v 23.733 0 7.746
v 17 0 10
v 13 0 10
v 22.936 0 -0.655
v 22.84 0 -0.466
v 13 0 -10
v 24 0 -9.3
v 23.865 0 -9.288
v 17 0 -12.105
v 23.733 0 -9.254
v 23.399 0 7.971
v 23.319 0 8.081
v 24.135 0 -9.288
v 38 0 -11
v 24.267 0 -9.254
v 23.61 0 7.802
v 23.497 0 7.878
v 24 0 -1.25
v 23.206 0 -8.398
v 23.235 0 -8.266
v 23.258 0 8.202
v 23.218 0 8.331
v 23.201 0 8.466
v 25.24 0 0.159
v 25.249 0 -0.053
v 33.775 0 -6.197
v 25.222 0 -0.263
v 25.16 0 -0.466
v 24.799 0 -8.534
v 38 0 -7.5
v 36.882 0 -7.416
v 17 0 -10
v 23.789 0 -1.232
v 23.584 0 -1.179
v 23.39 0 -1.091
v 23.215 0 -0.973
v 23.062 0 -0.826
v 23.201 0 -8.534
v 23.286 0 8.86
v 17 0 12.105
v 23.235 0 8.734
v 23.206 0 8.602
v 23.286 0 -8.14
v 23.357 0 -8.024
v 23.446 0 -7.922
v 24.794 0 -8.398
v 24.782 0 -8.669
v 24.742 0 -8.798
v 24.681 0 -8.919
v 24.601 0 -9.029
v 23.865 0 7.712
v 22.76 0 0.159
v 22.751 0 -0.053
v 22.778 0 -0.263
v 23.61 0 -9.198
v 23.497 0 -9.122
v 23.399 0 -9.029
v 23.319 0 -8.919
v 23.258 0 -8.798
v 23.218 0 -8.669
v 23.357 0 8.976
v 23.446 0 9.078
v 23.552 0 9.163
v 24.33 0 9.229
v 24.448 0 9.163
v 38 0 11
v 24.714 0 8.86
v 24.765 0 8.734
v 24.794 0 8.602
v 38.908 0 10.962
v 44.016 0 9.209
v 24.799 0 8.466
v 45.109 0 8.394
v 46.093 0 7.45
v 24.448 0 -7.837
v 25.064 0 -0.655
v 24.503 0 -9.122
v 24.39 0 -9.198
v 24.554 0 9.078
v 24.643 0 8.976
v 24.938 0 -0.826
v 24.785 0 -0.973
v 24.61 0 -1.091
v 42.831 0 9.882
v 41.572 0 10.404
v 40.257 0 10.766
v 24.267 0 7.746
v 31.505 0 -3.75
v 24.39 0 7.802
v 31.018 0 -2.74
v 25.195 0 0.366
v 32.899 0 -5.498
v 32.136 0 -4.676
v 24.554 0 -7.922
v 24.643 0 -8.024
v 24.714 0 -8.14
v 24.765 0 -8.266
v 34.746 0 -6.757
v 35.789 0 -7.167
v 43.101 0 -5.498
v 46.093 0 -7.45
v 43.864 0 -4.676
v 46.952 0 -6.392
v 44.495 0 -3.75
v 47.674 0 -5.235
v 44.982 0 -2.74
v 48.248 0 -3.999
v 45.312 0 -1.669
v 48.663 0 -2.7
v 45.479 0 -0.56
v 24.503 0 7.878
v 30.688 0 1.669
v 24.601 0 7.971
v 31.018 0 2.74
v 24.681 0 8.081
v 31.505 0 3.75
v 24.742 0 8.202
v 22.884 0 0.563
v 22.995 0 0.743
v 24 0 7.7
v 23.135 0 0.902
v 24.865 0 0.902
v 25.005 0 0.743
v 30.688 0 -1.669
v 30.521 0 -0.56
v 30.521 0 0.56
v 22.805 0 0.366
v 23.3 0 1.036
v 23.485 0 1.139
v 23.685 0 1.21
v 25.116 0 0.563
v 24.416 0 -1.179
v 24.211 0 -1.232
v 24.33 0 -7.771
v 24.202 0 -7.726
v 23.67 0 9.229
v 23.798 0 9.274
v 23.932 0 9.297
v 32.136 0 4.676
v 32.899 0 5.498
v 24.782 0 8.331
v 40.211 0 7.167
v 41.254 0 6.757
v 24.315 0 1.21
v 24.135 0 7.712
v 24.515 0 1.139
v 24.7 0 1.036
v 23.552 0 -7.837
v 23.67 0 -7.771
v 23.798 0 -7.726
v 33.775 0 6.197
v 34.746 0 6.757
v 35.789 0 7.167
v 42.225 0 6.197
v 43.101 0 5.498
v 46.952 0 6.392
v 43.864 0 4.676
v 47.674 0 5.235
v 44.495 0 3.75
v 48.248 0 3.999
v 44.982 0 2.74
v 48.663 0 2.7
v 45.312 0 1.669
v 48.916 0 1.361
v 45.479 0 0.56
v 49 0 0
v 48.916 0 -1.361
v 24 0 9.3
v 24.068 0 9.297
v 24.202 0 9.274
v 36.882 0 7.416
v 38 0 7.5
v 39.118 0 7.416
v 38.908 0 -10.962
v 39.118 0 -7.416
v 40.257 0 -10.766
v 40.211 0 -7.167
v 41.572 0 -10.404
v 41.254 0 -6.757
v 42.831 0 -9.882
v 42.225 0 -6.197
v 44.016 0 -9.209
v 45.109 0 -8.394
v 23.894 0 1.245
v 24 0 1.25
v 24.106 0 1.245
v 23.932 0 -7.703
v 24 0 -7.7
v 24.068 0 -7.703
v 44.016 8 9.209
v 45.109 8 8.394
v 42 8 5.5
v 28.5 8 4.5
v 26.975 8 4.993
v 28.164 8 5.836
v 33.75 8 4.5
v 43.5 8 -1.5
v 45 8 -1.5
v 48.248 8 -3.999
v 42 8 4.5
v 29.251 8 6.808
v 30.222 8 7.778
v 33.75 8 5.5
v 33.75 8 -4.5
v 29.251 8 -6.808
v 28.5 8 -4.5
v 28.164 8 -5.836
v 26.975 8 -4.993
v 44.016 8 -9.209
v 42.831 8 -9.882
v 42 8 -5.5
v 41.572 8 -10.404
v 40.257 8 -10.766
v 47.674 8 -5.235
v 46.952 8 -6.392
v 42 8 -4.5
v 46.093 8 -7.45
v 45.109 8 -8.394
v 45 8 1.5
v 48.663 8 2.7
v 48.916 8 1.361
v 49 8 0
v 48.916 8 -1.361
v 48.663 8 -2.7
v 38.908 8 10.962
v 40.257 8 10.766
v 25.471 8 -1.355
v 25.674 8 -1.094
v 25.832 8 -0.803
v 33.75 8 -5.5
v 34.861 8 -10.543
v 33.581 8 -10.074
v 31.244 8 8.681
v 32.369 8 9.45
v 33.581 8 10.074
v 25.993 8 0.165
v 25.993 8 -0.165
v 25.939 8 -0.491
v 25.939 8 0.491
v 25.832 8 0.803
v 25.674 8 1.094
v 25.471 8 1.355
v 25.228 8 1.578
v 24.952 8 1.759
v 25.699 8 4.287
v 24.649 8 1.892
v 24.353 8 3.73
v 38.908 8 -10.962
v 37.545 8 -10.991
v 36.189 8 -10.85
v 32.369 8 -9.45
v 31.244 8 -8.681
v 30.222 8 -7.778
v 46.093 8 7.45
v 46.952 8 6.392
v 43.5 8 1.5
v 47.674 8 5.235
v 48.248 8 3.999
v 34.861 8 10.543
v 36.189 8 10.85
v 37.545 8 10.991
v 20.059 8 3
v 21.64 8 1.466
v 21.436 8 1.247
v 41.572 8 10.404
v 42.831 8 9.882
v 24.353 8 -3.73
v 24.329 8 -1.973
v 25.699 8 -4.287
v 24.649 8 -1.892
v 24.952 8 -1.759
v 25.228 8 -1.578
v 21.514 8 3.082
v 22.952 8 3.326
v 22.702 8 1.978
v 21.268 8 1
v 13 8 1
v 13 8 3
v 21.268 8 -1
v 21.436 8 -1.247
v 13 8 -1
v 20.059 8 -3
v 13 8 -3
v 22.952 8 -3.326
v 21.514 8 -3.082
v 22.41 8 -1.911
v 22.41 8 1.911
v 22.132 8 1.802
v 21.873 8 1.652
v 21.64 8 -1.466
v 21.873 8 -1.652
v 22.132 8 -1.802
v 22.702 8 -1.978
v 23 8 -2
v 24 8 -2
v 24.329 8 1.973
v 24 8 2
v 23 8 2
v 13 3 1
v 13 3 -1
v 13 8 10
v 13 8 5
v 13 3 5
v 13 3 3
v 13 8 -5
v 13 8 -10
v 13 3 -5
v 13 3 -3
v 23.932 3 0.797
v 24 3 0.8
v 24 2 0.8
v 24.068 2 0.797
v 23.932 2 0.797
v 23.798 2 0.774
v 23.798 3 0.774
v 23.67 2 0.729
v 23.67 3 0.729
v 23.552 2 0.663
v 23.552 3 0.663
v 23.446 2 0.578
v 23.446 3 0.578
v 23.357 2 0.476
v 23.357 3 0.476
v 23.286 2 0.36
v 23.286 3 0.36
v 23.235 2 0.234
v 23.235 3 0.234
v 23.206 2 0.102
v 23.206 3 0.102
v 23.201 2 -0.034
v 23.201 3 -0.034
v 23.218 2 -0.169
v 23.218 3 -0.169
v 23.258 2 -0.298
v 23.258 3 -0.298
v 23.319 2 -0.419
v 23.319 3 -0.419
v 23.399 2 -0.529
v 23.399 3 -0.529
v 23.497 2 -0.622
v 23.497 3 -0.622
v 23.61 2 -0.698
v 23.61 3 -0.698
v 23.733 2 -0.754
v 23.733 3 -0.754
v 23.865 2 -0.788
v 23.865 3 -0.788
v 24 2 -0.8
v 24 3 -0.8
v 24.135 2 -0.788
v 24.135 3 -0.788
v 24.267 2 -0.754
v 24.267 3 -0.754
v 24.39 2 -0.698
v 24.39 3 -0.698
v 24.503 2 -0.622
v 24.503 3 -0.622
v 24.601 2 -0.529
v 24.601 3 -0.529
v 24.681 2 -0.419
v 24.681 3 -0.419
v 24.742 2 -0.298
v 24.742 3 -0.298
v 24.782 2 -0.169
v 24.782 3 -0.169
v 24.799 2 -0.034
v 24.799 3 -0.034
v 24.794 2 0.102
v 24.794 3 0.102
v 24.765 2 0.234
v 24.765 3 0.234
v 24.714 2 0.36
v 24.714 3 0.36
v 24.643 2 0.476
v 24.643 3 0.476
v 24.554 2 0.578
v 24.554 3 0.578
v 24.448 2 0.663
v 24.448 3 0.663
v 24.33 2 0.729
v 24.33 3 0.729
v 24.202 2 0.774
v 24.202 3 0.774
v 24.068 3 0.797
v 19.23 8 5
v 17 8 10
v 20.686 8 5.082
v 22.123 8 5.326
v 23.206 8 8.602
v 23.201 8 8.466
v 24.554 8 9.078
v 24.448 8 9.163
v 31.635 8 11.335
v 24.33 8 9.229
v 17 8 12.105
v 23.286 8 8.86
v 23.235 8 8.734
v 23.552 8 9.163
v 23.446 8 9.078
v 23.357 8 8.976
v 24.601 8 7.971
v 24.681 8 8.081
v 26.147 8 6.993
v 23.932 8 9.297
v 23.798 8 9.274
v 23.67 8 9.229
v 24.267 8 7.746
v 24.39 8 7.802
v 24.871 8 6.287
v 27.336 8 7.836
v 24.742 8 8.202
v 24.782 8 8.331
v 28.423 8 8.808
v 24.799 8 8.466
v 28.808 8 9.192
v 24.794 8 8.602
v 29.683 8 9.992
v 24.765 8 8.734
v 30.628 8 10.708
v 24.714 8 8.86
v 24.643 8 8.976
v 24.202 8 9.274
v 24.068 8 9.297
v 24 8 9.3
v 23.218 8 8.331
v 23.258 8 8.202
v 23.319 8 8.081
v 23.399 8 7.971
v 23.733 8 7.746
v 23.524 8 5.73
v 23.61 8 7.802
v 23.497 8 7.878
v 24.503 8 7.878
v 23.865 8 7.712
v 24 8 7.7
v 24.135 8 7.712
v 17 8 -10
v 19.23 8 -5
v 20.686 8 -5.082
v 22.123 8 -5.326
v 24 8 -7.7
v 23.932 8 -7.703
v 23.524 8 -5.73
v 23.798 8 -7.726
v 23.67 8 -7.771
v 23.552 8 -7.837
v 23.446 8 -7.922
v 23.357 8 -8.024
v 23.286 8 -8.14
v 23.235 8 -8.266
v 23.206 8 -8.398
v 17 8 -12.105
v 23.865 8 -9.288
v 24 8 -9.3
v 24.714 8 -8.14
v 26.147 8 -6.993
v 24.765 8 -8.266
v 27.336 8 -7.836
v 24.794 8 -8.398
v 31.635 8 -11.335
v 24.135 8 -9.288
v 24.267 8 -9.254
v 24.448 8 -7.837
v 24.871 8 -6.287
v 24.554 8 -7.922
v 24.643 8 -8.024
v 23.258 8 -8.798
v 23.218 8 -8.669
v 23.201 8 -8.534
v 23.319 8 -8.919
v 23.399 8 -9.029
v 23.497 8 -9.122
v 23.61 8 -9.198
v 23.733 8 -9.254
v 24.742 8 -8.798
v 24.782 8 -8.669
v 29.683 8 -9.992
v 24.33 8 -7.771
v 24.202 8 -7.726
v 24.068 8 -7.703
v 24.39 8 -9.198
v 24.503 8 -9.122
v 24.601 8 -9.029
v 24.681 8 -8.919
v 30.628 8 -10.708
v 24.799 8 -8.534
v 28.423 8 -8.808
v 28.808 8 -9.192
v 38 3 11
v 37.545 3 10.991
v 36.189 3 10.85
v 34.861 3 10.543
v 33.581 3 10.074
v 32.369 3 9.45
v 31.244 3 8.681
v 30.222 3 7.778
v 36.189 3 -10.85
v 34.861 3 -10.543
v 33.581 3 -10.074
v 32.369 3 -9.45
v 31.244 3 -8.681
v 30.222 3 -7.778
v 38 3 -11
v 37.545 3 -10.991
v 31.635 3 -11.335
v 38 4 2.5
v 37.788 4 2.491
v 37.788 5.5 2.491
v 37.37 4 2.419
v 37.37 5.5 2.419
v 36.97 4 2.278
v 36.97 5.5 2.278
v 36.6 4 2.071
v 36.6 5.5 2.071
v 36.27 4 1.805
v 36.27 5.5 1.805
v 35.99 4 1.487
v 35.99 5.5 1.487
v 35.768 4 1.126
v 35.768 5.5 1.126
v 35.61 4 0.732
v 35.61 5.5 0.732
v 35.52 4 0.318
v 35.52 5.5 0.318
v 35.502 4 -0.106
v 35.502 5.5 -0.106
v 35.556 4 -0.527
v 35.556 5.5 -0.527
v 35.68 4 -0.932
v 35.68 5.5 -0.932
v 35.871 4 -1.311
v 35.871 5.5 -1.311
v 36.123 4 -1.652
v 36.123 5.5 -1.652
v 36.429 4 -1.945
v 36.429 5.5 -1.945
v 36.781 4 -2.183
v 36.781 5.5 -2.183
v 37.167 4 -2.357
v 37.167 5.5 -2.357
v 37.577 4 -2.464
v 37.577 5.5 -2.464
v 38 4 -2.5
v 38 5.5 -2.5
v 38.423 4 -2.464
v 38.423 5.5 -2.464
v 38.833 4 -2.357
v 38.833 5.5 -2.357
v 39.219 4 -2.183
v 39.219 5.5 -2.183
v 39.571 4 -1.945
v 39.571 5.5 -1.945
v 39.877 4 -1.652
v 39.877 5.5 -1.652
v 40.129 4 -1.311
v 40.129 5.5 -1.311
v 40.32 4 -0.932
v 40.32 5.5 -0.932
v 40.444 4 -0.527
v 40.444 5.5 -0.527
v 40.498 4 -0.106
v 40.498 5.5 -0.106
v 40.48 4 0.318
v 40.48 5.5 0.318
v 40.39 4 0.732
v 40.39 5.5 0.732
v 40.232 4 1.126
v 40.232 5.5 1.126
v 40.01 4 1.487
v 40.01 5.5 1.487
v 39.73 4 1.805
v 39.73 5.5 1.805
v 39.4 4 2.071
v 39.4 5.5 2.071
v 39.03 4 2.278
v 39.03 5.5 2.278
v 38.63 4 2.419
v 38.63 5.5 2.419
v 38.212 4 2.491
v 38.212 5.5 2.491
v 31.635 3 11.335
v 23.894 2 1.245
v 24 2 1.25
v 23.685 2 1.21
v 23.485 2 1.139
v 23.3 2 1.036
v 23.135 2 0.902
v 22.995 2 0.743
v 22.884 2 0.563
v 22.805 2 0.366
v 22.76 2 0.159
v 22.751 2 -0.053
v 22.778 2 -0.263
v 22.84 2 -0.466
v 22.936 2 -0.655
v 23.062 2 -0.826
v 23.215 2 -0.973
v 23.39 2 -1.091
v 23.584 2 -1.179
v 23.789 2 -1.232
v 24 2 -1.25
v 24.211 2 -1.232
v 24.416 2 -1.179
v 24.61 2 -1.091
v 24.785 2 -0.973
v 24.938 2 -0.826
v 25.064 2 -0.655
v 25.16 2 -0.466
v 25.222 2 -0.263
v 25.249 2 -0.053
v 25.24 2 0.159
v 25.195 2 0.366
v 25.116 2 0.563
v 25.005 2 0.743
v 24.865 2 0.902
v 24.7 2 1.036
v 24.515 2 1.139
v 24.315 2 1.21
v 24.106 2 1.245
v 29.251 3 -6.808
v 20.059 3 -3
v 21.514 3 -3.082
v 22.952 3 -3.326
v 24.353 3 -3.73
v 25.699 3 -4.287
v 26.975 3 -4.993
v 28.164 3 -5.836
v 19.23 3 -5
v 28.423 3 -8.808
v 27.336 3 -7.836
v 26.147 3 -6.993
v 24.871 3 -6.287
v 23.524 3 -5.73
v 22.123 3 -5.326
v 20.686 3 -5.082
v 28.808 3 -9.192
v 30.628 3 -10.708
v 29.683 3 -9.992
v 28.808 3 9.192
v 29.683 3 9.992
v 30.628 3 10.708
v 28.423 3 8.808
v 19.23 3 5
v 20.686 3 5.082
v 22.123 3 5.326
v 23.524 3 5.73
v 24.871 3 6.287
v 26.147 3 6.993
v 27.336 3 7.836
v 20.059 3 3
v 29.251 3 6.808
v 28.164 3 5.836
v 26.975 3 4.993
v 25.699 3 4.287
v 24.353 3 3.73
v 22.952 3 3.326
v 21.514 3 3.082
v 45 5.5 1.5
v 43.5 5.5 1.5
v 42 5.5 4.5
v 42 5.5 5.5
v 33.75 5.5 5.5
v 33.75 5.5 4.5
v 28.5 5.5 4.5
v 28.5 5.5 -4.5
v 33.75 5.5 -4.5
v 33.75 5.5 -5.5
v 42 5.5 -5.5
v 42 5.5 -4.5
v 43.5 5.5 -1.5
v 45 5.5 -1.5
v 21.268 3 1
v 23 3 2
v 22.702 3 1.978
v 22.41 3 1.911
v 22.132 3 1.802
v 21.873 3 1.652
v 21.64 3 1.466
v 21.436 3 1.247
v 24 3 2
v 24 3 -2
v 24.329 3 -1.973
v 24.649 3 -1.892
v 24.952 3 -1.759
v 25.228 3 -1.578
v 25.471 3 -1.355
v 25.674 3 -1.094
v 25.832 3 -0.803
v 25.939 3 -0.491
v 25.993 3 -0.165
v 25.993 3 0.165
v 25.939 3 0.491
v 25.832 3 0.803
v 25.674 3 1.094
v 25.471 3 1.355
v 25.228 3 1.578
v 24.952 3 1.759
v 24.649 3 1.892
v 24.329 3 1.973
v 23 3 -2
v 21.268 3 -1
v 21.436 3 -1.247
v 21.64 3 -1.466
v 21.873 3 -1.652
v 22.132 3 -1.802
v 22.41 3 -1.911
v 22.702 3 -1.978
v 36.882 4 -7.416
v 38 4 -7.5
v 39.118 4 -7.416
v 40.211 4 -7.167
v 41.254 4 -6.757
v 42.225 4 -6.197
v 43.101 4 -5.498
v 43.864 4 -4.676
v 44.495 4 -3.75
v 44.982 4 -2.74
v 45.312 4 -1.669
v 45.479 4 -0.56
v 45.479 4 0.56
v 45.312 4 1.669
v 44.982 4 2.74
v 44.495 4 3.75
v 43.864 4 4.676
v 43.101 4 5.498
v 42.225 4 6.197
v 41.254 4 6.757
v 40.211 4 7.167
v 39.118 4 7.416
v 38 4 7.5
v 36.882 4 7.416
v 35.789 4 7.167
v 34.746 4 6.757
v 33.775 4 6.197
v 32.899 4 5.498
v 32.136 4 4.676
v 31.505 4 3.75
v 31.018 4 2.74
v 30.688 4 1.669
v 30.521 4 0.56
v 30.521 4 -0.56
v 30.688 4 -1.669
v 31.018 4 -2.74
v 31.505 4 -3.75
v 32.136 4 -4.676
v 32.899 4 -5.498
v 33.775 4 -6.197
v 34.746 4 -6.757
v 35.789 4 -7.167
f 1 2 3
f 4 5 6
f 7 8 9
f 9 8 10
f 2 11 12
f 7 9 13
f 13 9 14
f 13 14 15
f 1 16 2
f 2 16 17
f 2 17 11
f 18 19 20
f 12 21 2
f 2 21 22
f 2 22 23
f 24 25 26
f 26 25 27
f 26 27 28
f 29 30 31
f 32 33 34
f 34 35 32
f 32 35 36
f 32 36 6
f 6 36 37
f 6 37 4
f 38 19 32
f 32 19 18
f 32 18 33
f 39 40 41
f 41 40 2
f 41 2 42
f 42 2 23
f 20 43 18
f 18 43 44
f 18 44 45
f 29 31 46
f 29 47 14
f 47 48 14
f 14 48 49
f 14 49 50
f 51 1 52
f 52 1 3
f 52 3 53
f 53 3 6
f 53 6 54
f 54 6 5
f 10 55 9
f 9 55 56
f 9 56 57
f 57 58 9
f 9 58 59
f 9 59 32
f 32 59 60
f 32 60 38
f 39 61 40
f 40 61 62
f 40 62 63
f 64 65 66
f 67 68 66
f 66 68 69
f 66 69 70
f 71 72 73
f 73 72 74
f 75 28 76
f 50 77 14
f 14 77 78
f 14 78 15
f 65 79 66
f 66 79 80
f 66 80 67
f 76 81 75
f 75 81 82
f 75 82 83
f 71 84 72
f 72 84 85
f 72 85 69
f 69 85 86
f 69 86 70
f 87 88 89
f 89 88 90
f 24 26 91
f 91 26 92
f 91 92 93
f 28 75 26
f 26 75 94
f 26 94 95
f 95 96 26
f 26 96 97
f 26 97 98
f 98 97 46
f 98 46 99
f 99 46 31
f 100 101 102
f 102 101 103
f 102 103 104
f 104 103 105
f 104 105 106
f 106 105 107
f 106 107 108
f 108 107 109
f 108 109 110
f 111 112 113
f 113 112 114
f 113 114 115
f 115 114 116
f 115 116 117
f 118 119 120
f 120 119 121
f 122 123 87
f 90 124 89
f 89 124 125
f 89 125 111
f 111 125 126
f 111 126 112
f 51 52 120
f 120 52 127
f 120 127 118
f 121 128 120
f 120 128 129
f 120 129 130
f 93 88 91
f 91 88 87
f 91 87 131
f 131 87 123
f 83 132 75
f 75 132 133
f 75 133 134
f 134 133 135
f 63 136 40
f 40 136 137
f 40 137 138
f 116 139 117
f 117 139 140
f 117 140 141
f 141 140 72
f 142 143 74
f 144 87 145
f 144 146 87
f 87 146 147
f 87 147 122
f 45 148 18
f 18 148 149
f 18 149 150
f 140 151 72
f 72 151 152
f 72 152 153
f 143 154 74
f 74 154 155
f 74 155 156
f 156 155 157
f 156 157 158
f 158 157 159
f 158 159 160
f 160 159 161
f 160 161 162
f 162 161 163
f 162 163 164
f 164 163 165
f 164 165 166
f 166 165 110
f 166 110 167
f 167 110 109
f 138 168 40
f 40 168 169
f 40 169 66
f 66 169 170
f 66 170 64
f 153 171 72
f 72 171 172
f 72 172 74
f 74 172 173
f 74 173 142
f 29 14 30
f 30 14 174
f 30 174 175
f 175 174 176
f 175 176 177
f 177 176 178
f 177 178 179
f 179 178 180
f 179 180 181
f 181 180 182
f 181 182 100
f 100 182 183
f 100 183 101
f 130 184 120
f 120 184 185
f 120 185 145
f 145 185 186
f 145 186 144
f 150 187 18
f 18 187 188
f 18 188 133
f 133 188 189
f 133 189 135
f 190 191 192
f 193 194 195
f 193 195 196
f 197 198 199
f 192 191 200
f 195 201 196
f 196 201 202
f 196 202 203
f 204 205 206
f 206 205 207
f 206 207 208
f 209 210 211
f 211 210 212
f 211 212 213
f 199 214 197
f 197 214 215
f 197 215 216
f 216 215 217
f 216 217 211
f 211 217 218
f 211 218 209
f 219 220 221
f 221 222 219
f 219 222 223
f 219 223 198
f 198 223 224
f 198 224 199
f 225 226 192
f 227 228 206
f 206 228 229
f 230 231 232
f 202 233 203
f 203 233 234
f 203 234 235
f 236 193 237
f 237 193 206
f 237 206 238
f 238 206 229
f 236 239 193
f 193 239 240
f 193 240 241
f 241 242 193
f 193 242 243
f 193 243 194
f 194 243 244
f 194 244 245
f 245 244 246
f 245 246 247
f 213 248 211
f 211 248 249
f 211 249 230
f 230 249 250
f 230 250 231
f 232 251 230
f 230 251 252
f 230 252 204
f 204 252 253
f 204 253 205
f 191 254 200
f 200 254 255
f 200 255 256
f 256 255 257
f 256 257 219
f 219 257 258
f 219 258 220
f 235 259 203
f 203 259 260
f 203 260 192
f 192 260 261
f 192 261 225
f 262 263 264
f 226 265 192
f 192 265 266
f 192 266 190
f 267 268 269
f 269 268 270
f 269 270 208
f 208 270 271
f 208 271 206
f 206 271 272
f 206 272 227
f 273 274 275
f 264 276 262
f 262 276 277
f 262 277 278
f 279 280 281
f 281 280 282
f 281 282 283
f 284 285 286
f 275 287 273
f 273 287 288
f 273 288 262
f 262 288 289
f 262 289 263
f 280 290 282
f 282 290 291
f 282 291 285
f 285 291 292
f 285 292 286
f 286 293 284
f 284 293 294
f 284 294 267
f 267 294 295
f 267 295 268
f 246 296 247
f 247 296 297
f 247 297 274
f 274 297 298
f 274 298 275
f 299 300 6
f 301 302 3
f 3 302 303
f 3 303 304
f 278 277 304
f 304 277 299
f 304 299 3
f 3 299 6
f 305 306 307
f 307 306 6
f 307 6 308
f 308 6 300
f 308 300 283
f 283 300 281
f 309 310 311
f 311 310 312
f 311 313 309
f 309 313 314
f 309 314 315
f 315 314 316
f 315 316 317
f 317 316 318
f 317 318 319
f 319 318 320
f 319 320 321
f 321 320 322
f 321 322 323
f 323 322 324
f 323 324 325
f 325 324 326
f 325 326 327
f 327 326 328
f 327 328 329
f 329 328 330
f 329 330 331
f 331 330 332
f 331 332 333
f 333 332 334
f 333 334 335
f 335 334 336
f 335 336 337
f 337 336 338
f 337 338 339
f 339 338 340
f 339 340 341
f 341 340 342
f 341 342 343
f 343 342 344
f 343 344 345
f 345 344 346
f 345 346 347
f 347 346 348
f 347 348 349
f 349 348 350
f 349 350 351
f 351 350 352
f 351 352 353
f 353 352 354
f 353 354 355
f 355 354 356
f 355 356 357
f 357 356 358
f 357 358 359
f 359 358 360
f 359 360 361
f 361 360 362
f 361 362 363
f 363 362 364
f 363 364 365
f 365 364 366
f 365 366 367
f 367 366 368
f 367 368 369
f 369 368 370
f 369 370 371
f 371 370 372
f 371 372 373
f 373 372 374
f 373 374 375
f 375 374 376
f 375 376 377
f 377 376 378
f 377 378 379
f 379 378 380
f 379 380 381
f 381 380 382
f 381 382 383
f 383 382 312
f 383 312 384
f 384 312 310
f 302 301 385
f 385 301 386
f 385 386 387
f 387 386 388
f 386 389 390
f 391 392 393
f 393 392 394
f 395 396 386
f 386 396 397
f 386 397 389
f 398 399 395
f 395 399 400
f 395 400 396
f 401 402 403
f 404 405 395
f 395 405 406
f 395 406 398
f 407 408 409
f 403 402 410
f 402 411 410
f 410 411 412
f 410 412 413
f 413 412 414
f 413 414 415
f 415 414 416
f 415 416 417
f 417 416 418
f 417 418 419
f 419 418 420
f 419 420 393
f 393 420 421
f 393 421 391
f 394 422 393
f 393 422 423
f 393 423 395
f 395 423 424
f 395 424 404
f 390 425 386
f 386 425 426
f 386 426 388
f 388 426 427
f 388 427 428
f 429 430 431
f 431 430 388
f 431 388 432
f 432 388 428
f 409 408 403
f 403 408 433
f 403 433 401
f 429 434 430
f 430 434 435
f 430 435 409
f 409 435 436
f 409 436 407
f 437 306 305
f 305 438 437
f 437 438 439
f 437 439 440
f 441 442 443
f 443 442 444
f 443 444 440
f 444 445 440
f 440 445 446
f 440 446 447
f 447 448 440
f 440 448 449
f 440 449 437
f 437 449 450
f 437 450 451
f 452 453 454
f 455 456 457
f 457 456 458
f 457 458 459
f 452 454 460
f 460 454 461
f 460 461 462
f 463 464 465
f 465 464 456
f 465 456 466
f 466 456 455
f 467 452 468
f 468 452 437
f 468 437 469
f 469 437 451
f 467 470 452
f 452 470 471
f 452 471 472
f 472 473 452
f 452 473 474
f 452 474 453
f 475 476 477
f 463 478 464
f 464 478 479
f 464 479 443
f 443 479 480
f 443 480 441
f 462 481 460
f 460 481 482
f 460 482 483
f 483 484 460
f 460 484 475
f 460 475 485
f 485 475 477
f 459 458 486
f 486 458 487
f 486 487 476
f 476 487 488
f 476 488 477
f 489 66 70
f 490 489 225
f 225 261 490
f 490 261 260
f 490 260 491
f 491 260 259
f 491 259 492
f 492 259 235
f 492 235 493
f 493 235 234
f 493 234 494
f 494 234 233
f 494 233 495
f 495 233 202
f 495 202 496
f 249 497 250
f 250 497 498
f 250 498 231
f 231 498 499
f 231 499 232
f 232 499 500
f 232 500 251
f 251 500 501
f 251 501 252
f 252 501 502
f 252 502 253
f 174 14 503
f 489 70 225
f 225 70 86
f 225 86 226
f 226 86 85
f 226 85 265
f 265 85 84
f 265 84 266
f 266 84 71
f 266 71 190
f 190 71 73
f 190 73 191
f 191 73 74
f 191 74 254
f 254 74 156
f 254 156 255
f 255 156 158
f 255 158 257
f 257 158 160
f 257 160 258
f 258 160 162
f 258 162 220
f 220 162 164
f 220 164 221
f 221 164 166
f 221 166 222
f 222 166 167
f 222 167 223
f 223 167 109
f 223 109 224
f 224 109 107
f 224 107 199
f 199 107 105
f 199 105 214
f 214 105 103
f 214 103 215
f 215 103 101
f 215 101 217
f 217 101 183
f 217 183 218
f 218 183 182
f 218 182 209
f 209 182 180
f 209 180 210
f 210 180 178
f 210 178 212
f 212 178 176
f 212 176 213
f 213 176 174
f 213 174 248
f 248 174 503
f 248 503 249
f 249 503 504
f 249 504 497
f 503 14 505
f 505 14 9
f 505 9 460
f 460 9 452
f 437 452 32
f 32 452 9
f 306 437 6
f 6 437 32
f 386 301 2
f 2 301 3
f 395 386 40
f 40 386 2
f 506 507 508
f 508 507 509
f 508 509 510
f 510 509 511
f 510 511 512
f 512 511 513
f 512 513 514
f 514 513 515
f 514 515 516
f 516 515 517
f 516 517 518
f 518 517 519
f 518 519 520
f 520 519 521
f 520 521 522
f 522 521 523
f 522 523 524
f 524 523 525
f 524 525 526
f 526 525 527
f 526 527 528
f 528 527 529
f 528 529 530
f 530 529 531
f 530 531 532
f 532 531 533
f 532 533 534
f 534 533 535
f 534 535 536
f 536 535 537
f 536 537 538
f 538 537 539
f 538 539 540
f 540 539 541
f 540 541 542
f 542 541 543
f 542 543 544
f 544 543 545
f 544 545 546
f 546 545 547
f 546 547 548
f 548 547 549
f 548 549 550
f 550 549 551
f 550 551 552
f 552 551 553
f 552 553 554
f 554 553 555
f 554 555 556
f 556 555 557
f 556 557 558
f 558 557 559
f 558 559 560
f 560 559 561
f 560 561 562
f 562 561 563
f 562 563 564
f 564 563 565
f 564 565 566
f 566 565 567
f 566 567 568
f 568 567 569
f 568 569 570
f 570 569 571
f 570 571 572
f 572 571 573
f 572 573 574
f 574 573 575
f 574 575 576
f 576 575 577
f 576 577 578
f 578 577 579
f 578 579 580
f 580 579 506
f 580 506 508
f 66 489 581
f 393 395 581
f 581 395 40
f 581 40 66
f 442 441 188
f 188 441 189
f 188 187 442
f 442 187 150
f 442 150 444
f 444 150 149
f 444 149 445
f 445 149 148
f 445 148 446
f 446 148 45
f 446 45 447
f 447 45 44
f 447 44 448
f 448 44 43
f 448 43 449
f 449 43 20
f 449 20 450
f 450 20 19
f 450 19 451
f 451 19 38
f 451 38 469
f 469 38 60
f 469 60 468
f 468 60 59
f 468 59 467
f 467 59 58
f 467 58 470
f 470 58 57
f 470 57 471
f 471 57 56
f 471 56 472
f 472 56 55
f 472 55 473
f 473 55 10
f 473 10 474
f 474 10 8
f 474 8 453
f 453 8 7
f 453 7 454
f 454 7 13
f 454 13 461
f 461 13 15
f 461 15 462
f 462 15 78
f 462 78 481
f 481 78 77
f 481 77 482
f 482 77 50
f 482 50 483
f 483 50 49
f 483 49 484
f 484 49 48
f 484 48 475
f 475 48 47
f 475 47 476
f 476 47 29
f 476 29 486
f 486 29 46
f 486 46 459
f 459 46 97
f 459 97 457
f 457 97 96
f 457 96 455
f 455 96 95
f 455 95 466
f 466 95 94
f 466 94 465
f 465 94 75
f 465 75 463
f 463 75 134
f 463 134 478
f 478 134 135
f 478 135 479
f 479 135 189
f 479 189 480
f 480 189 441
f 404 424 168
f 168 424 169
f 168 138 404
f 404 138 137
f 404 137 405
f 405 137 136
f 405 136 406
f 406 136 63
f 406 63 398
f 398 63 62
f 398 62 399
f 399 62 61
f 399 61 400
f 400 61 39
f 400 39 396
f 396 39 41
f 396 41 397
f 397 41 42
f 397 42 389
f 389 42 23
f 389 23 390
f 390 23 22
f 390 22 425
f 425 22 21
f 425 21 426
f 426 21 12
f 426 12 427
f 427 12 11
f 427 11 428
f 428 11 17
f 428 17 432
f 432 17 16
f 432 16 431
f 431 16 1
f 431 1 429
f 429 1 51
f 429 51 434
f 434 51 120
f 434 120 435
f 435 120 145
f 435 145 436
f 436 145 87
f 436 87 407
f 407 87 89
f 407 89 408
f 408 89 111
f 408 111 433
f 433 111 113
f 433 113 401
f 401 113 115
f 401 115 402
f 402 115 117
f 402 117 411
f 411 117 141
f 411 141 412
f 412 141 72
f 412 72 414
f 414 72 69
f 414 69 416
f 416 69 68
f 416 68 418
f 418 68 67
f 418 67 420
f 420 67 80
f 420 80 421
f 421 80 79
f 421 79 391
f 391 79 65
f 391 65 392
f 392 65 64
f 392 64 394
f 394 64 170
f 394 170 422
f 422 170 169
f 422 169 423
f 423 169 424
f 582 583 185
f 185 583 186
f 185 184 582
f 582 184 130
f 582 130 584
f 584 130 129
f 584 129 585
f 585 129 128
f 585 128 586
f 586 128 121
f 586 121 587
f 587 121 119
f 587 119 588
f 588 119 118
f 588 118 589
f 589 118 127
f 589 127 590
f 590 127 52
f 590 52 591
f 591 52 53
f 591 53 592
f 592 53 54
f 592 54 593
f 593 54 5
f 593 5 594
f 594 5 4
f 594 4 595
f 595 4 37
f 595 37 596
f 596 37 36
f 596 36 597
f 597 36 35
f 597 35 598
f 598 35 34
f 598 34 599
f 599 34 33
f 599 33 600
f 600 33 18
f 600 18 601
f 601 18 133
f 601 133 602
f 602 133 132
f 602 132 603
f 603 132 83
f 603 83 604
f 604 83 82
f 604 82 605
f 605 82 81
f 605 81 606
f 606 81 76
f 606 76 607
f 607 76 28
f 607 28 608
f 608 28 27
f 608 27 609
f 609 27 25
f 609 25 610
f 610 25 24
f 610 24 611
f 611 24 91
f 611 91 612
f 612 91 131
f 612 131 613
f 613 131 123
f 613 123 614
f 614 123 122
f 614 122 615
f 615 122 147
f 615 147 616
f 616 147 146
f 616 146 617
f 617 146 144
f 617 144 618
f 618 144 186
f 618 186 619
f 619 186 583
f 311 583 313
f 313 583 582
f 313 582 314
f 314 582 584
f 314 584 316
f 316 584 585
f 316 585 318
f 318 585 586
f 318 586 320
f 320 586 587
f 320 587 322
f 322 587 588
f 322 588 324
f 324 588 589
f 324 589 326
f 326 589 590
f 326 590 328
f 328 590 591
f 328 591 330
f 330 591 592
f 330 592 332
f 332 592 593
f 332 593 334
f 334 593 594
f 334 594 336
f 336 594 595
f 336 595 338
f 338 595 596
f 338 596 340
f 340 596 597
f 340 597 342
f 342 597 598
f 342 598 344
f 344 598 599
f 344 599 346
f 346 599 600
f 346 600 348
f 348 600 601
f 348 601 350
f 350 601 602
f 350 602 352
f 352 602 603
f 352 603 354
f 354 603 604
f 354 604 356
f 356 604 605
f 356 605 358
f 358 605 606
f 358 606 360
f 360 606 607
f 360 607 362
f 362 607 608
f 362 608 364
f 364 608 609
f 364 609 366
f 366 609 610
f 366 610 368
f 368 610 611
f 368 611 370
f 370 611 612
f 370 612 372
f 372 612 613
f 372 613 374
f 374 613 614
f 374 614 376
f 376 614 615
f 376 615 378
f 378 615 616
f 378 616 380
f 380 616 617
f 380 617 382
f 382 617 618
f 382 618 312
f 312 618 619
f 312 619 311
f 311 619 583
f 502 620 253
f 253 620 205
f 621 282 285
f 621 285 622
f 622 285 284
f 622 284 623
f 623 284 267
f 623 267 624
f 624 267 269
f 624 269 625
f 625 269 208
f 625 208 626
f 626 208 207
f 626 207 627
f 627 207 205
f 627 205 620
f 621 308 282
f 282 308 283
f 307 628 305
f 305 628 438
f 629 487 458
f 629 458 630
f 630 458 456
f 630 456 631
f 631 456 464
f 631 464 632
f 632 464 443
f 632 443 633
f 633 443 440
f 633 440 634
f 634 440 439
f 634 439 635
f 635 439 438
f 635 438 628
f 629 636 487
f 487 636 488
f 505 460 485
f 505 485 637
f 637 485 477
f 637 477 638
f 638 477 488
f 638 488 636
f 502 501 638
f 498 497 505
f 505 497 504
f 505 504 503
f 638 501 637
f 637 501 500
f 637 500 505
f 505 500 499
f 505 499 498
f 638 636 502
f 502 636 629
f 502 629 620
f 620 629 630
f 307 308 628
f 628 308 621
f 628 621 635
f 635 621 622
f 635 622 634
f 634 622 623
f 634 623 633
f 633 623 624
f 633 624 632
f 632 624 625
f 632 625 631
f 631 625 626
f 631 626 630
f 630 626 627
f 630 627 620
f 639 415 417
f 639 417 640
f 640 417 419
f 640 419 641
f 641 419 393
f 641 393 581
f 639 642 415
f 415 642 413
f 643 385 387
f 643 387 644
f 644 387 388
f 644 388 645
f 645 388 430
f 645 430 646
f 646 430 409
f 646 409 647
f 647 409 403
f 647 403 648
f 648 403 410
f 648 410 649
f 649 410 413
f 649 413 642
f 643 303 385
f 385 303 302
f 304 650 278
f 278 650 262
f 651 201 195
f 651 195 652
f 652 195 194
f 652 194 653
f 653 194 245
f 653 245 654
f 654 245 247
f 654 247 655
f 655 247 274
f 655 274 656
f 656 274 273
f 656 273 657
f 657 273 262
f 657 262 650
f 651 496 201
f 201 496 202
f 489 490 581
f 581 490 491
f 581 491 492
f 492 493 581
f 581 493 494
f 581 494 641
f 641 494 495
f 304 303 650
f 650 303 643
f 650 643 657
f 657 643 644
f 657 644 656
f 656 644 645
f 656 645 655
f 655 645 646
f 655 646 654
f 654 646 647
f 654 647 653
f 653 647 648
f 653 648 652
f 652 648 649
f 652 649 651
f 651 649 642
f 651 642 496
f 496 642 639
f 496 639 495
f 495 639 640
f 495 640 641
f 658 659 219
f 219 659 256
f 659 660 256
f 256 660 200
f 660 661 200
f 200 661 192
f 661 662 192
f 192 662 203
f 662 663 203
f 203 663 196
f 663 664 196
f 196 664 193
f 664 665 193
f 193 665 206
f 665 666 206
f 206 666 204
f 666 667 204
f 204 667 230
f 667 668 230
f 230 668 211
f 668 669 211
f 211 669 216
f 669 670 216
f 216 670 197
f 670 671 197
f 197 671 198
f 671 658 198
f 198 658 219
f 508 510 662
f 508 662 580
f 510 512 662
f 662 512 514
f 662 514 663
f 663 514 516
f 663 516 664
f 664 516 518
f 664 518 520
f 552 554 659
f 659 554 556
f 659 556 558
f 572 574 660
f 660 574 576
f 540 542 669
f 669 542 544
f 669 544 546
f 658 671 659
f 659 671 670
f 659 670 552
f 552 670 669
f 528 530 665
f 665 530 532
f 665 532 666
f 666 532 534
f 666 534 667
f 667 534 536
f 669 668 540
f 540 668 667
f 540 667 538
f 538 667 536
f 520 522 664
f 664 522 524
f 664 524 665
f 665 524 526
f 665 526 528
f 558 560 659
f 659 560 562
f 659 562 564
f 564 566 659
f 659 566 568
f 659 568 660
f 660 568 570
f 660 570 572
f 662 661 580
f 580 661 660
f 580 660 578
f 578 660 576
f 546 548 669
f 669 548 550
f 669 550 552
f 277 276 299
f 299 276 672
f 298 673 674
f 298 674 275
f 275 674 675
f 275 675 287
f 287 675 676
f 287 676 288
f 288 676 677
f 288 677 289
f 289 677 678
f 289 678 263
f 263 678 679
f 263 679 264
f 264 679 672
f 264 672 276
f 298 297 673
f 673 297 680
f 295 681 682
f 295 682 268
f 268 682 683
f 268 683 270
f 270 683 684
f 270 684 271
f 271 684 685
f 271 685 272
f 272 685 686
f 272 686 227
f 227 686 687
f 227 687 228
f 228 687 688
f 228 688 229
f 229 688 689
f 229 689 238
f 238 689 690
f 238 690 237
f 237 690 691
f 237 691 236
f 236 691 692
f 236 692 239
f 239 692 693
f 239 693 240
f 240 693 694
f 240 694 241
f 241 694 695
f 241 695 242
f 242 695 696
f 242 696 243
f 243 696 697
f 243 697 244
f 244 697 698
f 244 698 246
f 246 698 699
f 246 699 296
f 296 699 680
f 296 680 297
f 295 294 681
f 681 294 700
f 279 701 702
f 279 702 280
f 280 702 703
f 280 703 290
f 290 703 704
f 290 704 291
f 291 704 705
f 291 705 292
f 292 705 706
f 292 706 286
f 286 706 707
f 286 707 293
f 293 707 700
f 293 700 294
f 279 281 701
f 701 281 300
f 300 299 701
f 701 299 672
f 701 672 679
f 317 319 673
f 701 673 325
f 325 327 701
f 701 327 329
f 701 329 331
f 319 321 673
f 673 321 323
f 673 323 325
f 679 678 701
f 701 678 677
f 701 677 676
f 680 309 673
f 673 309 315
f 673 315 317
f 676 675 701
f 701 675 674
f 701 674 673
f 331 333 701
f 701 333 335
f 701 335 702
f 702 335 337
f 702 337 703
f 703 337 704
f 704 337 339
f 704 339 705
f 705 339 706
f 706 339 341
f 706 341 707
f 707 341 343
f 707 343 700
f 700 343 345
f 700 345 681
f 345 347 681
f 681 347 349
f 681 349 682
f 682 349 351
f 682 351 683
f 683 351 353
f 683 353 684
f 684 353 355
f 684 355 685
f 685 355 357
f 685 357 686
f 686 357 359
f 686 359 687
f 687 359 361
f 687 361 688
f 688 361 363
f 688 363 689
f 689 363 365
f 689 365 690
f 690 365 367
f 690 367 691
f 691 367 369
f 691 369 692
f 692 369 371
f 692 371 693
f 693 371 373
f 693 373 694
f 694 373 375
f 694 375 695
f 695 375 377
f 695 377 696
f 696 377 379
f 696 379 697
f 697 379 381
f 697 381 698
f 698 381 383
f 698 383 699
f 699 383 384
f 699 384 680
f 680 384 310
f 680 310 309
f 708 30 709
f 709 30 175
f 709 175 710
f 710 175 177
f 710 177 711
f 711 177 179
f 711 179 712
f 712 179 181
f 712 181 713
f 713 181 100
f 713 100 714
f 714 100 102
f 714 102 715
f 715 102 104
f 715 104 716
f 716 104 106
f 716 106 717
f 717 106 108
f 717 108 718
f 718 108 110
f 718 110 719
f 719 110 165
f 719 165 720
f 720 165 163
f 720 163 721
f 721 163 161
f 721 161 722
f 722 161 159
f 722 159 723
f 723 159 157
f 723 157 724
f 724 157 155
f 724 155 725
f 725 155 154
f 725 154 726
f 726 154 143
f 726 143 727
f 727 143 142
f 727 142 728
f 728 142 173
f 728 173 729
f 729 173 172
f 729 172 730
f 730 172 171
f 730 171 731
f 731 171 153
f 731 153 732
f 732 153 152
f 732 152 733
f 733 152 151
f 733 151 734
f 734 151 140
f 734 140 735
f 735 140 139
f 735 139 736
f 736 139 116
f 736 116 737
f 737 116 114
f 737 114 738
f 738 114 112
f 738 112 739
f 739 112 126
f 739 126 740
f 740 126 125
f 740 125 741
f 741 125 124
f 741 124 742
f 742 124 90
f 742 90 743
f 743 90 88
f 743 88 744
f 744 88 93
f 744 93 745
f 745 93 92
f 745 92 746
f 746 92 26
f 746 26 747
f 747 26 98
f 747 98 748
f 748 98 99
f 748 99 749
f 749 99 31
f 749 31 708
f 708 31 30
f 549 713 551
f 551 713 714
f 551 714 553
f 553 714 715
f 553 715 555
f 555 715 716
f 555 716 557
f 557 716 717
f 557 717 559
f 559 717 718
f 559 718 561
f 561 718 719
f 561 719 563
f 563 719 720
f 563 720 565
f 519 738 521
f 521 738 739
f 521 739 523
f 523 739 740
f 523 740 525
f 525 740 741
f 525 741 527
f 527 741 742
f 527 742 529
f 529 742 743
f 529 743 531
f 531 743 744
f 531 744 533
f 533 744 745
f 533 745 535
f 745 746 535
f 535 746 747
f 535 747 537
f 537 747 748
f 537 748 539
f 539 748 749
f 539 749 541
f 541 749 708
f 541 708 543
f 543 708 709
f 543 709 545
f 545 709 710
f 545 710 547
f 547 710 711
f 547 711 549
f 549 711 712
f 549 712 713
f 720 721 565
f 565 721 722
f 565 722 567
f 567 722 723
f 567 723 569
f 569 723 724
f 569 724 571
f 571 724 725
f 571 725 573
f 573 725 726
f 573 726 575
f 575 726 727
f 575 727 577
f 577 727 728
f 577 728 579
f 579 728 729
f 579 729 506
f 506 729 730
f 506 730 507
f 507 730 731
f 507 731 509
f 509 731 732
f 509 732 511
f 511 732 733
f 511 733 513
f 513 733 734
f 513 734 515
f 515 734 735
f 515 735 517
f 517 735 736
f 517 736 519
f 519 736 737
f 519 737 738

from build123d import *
from build123d.topology import SkipClean

# Parameters (mm, degrees)
SKETCH1_R                       = 2.5
BOSS_EXTRUDE1_DEPTH             = 8
SKETCH2_R                       = 0.8
SCREW_HOLES_DEPTH               = 52.103203384
SKETCH10_R                      = 1.25
SCREW_HEADS_DEPTH               = 2
DISTAL_MIDDLE_START             = 3
DISTAL_MIDDLE_CABLE_CANAL_DEPTH = 5
POT_START                       = 8
POT_INSERT_DEPTH                = 2.5
CUT_EXTRUDE1_START              = 3
CUT_EXTRUDE1_DEPTH              = 5
SKETCH7_R                       = 7.5
CUT_EXTRUDE2_DEPTH              = 4


with BuildPart() as part:
    # Sketch1 → Boss-Extrude1 (new body)
    with BuildSketch(Plane(origin=(0, 0, 0), x_dir=(1, 0, 0), z_dir=(0, 1, 0))):
        with BuildLine():
            Line((13, 10), (13, -10))
            Line((13, -10), (17, -10))
            Line((17, -10), (17, -12.105263158))
            Line((17, -12.105263158), (38, -11))
            ThreePointArc((38, -11), (49, 0), (38, 11))
            Line((38, 11), (17, 12.105263158))
            Line((17, 12.105263158), (17, 10))
            Line((17, 10), (13, 10))
        make_face()
        with Locations((38, 0)):
            Circle(SKETCH1_R, mode=Mode.SUBTRACT)
    extrude(amount=BOSS_EXTRUDE1_DEPTH)

    # Sketch2 → Screw Holes (cut, through all)
    with BuildSketch(Plane(origin=(0, 0, 0), x_dir=(1, 0, 0), z_dir=(0, 1, 0))):
        with Locations((24, 8.5)):
            Circle(SKETCH2_R)
        with Locations((24, 0)):
            Circle(SKETCH2_R)
        with Locations((24, -8.5)):
            Circle(SKETCH2_R)
    extrude(amount=SCREW_HOLES_DEPTH, mode=Mode.SUBTRACT)

    # Sketch10 → Screw Heads (cut)
    with BuildSketch(Plane(origin=(0, 0, 0), x_dir=(1, 0, 0), z_dir=(0, 1, 0))):
        with Locations((24, 0)):
            Circle(SKETCH10_R)
    extrude(amount=SCREW_HEADS_DEPTH, mode=Mode.SUBTRACT)

    # Sketch 3 → Distal/Middle Cable Canal (cut)
    with SkipClean():  # the faces are left unmerged after this step: merging them gives an invalid solid
        with BuildSketch(Plane(origin=(0, 0, 0), x_dir=(1, 0, 0), z_dir=(0, 1, 0)).offset(DISTAL_MIDDLE_START)):
            with BuildLine():
                Line((19, 5), (13, 5))
                Line((13, 5), (13, 3))
                Line((13, 3), (19, 3))
                Line((19, 3), (20.058874503, 3))
                ThreePointArc((20.058874503, 3), (25.033759124, 3.989566077), (29.251262658, 6.807611845))
                Line((29.251262658, 6.807611845), (30.221825407, 7.778174593))
                ThreePointArc((30.221825407, 7.778174593), (33.790482244, 10.162674858), (38, 11))
                Line((38, 11), (31.634673214, 11.335017199))
                ThreePointArc((31.634673214, 11.335017199), (30.147717634, 10.360582109), (28.807611845, 9.192388155))
                Line((28.807611845, 9.192388155), (28.422835534, 8.807611845))
                ThreePointArc((28.422835534, 8.807611845), (24.205331999, 5.989566077), (19.230447378, 5))
                Line((19.230447378, 5), (19, 5))
            make_face()
            with BuildLine():
                Line((19, -5), (13, -5))
                Line((13, -5), (13, -3))
                Line((13, -3), (19, -3))
                Line((19, -3), (20.058874503, -3))
                ThreePointArc((20.058874503, -3), (25.033759124, -3.989566077), (29.251262658, -6.807611845))
                Line((29.251262658, -6.807611845), (30.221825407, -7.778174593))
                ThreePointArc((30.221825407, -7.778174593), (33.790482244, -10.162674858), (38, -11))
                Line((38, -11), (31.634673214, -11.335017199))
                ThreePointArc((31.634673214, -11.335017199), (30.147717634, -10.360582109), (28.807611845, -9.192388155))
                Line((28.807611845, -9.192388155), (28.422835534, -8.807611845))
                ThreePointArc((28.422835534, -8.807611845), (24.205331999, -5.989566077), (19.230447378, -5))
                Line((19.230447378, -5), (19, -5))
            make_face()
        extrude(amount=DISTAL_MIDDLE_CABLE_CANAL_DEPTH, mode=Mode.SUBTRACT)

    # Sketch3 → Pot Insert (cut)
    with SkipClean():  # the faces are left unmerged after this step: merging them gives an invalid solid
        with BuildSketch(Plane(origin=(28.28760271, 0, 0), x_dir=(1, 0, 0), z_dir=(0, 1, 0)).offset(POT_START)):
            Polygon((16.71239729, 0), (16.71239729, 1.5), (15.21239729, 1.5), (13.71239729, 4.5), (13.71239729, 5.5), (9.71239729, 5.5), (5.46239729, 5.5), (5.46239729, 4.5), (0.21239729, 4.5), (0.21239729, 0), (0.21239729, -4.5), (5.46239729, -4.5), (5.46239729, -5.5), (9.71239729, -5.5), (13.71239729, -5.5), (13.71239729, -4.5), (15.21239729, -1.5), (16.71239729, -1.5), align=None)
        extrude(amount=-POT_INSERT_DEPTH, mode=Mode.SUBTRACT)

    # Sketch5 → Cut-Extrude1 (cut)
    with SkipClean():  # the faces are left unmerged after this step: merging them gives an invalid solid
        with BuildSketch(Plane(origin=(0, 0, 0), x_dir=(1, 0, 0), z_dir=(0, 1, 0)).offset(CUT_EXTRUDE1_START)):
            with BuildLine():
                Line((13, 1), (13, -1))
                Line((13, -1), (21.267949192, -1))
                ThreePointArc((21.267949192, -1), (22, -1.732050808), (23, -2))
                Line((23, -2), (24, -2))
                ThreePointArc((24, -2), (26, 0), (24, 2))
                Line((24, 2), (23, 2))
                ThreePointArc((23, 2), (22, 1.732050808), (21.267949192, 1))
                Line((21.267949192, 1), (13, 1))
            make_face()
        extrude(amount=CUT_EXTRUDE1_DEPTH, mode=Mode.SUBTRACT)

    # Sketch7 → Cut-Extrude2 (cut)
    with SkipClean():  # the faces are left unmerged after this step: merging them gives an invalid solid
        with BuildSketch(Plane(origin=(0, 0, 0), x_dir=(1, 0, 0), z_dir=(0, 1, 0))):
            with Locations((38, 0)):
                Circle(SKETCH7_R)
        extrude(amount=CUT_EXTRUDE2_DEPTH, mode=Mode.SUBTRACT)


solid = part.part
